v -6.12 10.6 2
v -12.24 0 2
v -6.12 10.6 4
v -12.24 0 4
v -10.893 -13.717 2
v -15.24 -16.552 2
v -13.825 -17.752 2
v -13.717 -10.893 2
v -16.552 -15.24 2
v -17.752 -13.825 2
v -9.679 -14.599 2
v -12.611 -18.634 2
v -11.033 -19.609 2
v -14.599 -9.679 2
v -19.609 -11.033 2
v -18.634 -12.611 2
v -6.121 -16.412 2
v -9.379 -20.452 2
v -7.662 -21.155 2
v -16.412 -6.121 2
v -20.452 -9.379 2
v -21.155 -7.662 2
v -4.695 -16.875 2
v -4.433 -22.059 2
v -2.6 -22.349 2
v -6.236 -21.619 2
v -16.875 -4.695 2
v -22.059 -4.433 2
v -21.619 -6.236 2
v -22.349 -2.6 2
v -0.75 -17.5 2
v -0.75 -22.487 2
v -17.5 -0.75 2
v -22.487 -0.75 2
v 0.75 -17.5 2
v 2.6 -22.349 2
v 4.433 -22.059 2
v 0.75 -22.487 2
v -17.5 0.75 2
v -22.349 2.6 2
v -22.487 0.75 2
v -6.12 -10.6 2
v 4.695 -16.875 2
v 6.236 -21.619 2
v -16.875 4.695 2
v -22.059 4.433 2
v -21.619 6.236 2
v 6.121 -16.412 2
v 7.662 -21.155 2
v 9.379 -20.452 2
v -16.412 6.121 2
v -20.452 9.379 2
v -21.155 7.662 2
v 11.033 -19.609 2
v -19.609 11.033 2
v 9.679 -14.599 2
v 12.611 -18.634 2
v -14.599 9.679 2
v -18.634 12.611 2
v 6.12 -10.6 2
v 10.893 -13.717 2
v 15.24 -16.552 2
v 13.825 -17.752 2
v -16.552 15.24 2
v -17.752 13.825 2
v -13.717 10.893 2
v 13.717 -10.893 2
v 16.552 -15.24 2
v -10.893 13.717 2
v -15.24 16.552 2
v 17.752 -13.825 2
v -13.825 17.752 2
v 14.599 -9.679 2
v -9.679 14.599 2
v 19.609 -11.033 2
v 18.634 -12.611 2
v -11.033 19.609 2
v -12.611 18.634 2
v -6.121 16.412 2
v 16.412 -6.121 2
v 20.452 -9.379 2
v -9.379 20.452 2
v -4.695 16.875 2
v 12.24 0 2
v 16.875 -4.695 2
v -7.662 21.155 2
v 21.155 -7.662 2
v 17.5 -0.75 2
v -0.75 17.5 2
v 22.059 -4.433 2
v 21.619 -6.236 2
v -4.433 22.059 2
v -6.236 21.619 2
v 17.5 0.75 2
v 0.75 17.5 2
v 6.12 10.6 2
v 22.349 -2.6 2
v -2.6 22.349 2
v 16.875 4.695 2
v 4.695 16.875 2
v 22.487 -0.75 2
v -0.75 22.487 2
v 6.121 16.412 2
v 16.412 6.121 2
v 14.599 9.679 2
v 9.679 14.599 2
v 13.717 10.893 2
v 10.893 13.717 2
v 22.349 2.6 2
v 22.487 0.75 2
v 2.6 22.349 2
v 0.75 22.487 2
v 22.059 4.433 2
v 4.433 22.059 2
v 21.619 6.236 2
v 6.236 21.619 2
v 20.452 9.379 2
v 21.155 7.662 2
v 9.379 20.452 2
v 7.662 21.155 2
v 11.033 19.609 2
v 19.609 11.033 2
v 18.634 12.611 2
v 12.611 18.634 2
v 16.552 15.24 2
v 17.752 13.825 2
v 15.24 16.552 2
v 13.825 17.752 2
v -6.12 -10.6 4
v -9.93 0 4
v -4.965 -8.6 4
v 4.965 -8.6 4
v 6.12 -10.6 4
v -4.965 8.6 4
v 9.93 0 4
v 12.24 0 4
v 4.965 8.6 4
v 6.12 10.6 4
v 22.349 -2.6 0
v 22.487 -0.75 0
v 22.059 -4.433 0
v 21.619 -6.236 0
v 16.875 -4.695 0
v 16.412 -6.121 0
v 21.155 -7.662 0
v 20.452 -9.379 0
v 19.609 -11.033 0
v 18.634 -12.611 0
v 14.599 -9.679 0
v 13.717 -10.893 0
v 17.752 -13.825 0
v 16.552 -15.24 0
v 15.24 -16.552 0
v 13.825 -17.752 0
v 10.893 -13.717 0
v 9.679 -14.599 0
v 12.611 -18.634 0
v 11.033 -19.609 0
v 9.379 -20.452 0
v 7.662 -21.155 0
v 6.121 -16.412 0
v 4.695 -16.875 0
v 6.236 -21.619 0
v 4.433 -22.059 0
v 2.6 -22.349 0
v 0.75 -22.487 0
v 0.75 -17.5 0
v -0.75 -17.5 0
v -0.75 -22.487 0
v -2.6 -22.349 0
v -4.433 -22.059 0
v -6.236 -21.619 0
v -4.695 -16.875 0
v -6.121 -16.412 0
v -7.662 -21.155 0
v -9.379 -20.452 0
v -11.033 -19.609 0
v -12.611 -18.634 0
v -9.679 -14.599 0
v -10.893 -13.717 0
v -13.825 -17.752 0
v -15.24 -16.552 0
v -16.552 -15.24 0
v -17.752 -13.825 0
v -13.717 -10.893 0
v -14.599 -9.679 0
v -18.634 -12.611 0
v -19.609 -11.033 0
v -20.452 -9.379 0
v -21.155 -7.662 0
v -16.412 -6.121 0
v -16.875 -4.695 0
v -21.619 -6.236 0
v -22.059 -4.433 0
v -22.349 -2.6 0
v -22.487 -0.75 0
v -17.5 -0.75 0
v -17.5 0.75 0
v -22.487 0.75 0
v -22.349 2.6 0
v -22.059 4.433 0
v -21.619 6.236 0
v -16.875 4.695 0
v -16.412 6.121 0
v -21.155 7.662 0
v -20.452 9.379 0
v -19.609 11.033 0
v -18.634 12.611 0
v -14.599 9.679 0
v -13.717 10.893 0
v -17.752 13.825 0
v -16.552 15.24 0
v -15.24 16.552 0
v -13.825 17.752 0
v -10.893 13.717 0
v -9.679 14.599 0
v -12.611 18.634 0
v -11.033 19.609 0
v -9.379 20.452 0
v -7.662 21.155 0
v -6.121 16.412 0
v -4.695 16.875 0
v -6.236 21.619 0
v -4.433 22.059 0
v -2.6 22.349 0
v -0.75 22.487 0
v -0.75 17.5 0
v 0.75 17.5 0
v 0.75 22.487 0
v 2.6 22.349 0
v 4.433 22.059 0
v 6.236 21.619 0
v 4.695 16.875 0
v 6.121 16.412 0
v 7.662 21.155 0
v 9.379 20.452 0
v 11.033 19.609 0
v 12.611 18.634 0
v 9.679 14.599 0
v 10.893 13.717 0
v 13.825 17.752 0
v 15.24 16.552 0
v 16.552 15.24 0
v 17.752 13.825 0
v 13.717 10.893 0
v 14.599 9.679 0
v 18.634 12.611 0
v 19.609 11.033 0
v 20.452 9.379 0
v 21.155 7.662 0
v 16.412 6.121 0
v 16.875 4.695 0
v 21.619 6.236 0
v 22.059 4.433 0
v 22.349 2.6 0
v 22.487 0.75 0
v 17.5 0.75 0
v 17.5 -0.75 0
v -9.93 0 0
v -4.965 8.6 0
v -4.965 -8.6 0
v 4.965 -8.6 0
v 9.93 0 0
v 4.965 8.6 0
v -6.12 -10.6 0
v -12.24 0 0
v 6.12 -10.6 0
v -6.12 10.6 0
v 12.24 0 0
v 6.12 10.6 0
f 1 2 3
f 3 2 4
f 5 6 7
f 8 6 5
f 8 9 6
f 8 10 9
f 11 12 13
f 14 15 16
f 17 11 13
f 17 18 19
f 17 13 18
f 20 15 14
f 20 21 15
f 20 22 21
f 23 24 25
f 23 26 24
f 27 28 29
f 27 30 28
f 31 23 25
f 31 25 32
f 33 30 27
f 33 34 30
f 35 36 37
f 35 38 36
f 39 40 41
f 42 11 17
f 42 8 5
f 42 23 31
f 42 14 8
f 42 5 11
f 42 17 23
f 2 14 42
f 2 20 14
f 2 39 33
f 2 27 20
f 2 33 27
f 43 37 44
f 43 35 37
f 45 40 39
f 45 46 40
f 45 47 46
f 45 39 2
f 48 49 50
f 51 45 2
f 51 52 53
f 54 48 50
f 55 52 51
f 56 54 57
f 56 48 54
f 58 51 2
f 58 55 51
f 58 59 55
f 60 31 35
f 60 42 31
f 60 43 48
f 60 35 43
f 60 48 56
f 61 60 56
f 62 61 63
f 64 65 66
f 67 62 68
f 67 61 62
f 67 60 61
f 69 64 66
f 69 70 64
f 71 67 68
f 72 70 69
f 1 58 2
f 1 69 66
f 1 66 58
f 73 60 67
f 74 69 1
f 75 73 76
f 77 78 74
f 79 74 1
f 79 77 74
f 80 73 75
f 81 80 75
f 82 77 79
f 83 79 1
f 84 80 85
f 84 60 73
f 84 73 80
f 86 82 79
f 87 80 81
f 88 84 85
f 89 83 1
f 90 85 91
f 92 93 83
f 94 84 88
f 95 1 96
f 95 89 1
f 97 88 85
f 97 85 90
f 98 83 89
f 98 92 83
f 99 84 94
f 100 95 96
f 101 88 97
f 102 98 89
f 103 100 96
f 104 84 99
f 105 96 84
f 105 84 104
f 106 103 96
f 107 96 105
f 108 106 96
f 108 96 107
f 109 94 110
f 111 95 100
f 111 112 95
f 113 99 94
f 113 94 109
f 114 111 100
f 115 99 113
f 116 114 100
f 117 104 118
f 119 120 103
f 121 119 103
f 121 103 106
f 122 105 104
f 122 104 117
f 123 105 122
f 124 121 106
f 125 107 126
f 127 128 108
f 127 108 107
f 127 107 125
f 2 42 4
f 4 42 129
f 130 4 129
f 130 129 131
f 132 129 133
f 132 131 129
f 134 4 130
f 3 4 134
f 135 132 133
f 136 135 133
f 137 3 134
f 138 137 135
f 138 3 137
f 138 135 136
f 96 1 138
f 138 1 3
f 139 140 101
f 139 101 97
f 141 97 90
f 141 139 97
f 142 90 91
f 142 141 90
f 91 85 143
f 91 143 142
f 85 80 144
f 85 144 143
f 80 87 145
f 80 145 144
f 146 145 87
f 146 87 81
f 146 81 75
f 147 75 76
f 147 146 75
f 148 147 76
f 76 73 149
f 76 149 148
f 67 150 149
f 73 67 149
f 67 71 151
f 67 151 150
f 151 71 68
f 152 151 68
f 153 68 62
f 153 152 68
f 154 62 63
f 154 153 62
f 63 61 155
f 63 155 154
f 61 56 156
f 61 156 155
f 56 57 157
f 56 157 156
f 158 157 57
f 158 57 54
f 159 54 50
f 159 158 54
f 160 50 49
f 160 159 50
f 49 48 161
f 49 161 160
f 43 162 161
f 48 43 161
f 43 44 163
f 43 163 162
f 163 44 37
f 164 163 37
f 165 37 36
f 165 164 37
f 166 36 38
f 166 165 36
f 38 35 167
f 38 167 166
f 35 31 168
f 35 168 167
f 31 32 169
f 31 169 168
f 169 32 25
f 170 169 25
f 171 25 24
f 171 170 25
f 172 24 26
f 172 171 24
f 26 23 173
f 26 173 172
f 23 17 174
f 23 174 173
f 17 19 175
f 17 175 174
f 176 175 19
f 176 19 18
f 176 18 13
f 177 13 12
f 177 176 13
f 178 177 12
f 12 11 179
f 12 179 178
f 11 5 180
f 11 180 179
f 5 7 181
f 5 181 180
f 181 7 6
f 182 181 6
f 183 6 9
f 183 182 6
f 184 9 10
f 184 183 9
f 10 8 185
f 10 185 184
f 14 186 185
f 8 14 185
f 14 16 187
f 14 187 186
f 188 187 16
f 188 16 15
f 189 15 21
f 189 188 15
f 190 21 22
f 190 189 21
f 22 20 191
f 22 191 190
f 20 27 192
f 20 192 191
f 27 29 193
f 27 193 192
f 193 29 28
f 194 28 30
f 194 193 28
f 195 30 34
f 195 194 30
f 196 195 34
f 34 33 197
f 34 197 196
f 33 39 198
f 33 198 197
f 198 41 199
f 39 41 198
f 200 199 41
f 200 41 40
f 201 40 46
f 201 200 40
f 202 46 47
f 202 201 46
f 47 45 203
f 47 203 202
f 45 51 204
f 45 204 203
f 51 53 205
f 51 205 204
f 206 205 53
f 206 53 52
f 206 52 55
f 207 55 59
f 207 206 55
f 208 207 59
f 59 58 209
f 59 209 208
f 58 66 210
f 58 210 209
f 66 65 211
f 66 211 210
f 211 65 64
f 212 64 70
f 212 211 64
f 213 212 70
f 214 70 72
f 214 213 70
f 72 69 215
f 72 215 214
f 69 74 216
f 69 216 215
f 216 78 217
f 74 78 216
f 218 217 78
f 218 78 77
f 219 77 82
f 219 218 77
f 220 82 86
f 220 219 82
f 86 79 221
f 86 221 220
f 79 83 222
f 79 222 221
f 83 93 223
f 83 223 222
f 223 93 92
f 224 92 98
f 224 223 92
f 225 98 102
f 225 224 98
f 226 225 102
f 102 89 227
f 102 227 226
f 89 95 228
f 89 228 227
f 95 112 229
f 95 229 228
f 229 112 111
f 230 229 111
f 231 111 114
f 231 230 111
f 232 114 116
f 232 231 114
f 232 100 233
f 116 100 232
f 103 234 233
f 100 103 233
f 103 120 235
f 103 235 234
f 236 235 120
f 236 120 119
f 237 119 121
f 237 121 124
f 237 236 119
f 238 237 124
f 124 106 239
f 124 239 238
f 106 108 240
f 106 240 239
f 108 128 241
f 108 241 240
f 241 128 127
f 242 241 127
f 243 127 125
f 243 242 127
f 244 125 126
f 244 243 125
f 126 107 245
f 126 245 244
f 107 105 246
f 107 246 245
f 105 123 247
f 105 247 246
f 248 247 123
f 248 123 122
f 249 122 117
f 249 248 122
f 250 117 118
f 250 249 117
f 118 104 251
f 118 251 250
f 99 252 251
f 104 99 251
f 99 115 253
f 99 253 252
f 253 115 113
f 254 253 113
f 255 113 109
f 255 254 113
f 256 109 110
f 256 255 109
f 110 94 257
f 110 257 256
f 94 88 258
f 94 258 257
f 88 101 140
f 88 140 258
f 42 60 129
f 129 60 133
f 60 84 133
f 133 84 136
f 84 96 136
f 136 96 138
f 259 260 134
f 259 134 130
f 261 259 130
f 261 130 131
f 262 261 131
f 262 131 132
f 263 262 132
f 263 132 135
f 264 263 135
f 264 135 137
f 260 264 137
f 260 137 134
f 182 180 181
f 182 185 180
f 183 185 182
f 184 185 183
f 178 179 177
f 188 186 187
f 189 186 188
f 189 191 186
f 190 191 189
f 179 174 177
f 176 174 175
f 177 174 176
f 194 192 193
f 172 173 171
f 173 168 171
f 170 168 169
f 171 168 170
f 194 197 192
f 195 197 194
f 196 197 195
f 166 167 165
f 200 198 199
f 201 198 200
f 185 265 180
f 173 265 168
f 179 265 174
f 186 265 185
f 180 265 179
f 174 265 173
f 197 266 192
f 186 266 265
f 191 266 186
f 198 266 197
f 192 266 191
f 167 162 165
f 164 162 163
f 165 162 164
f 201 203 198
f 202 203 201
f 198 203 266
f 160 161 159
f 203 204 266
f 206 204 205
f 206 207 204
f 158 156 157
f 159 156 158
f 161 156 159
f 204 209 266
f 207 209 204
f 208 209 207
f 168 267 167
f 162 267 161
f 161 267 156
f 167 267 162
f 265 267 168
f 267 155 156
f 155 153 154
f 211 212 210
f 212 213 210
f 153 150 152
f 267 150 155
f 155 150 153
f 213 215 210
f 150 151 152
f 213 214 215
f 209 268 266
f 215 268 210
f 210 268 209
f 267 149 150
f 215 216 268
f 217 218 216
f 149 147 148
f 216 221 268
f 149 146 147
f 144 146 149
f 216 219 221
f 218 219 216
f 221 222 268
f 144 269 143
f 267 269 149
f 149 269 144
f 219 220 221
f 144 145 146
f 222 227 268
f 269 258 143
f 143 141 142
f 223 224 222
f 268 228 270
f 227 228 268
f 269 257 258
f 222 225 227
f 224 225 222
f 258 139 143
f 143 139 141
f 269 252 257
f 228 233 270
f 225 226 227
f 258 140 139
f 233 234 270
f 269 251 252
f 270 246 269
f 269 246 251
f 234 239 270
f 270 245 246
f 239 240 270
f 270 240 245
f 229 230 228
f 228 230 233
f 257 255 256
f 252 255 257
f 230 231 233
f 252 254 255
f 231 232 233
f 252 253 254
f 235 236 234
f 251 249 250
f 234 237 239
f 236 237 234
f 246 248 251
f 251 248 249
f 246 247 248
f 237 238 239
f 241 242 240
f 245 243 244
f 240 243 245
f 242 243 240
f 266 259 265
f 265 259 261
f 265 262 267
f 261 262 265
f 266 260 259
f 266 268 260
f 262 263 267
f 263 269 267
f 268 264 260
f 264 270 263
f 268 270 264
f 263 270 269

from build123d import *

# Parameters (mm, degrees)
PAD_DEPTH          = 4
SKETCH001_R        = 22.5
PAD001_DEPTH       = 2
SKETCH002_W        = 1.5
SKETCH002_H        = 5
POCKET_DEPTH       = 129.531389
POLARPATTERN_COUNT = 20


with BuildPart() as part:
    # Sketch → Pad (new body)
    with BuildSketch(Plane.XY):
        Polygon((-6.119913, 10.6), (-12.239826, 0), (-6.119913, -10.6), (6.119913, -10.6), (12.239826, 0), (6.119913, 10.6), align=None)
        Polygon((-4.965212, 8.6), (-9.930425, 0), (-4.965212, -8.6), (4.965212, -8.6), (9.930425, 0), (4.965212, 8.6), align=None, mode=Mode.SUBTRACT)
    extrude(amount=PAD_DEPTH)

    # Sketch001 (on Face13 of Pad) → Pad001 (join)
    with BuildSketch(Plane(origin=(0, 0, 0), x_dir=(1, 0, 0), z_dir=(0, 0, -1))):
        Circle(SKETCH001_R)
        Polygon((-6.119913, 10.6), (-12.239826, 0), (-6.119913, -10.6), (6.119913, -10.6), (12.239826, 0), (6.119913, 10.6), align=None, mode=Mode.SUBTRACT)
    extrude(amount=-PAD001_DEPTH)

    # Sketch002 (on Face2 of Pad001) → Pocket (cut, through all)
    with BuildSketch(Plane.XY.offset(2)):
        with Locations((0, 20)):
            Rectangle(SKETCH002_W, SKETCH002_H)
    pocket = extrude(amount=-POCKET_DEPTH, mode=Mode.SUBTRACT)

    # PolarPattern: Pocket ×20 about axis
    polarpattern_axis = Axis((0, 0, 0), (0, 0, 1))
    for i in range(1, POLARPATTERN_COUNT):
        add(pocket.rotate(polarpattern_axis, i * 360 / POLARPATTERN_COUNT), mode=Mode.SUBTRACT)


solid = part.part
